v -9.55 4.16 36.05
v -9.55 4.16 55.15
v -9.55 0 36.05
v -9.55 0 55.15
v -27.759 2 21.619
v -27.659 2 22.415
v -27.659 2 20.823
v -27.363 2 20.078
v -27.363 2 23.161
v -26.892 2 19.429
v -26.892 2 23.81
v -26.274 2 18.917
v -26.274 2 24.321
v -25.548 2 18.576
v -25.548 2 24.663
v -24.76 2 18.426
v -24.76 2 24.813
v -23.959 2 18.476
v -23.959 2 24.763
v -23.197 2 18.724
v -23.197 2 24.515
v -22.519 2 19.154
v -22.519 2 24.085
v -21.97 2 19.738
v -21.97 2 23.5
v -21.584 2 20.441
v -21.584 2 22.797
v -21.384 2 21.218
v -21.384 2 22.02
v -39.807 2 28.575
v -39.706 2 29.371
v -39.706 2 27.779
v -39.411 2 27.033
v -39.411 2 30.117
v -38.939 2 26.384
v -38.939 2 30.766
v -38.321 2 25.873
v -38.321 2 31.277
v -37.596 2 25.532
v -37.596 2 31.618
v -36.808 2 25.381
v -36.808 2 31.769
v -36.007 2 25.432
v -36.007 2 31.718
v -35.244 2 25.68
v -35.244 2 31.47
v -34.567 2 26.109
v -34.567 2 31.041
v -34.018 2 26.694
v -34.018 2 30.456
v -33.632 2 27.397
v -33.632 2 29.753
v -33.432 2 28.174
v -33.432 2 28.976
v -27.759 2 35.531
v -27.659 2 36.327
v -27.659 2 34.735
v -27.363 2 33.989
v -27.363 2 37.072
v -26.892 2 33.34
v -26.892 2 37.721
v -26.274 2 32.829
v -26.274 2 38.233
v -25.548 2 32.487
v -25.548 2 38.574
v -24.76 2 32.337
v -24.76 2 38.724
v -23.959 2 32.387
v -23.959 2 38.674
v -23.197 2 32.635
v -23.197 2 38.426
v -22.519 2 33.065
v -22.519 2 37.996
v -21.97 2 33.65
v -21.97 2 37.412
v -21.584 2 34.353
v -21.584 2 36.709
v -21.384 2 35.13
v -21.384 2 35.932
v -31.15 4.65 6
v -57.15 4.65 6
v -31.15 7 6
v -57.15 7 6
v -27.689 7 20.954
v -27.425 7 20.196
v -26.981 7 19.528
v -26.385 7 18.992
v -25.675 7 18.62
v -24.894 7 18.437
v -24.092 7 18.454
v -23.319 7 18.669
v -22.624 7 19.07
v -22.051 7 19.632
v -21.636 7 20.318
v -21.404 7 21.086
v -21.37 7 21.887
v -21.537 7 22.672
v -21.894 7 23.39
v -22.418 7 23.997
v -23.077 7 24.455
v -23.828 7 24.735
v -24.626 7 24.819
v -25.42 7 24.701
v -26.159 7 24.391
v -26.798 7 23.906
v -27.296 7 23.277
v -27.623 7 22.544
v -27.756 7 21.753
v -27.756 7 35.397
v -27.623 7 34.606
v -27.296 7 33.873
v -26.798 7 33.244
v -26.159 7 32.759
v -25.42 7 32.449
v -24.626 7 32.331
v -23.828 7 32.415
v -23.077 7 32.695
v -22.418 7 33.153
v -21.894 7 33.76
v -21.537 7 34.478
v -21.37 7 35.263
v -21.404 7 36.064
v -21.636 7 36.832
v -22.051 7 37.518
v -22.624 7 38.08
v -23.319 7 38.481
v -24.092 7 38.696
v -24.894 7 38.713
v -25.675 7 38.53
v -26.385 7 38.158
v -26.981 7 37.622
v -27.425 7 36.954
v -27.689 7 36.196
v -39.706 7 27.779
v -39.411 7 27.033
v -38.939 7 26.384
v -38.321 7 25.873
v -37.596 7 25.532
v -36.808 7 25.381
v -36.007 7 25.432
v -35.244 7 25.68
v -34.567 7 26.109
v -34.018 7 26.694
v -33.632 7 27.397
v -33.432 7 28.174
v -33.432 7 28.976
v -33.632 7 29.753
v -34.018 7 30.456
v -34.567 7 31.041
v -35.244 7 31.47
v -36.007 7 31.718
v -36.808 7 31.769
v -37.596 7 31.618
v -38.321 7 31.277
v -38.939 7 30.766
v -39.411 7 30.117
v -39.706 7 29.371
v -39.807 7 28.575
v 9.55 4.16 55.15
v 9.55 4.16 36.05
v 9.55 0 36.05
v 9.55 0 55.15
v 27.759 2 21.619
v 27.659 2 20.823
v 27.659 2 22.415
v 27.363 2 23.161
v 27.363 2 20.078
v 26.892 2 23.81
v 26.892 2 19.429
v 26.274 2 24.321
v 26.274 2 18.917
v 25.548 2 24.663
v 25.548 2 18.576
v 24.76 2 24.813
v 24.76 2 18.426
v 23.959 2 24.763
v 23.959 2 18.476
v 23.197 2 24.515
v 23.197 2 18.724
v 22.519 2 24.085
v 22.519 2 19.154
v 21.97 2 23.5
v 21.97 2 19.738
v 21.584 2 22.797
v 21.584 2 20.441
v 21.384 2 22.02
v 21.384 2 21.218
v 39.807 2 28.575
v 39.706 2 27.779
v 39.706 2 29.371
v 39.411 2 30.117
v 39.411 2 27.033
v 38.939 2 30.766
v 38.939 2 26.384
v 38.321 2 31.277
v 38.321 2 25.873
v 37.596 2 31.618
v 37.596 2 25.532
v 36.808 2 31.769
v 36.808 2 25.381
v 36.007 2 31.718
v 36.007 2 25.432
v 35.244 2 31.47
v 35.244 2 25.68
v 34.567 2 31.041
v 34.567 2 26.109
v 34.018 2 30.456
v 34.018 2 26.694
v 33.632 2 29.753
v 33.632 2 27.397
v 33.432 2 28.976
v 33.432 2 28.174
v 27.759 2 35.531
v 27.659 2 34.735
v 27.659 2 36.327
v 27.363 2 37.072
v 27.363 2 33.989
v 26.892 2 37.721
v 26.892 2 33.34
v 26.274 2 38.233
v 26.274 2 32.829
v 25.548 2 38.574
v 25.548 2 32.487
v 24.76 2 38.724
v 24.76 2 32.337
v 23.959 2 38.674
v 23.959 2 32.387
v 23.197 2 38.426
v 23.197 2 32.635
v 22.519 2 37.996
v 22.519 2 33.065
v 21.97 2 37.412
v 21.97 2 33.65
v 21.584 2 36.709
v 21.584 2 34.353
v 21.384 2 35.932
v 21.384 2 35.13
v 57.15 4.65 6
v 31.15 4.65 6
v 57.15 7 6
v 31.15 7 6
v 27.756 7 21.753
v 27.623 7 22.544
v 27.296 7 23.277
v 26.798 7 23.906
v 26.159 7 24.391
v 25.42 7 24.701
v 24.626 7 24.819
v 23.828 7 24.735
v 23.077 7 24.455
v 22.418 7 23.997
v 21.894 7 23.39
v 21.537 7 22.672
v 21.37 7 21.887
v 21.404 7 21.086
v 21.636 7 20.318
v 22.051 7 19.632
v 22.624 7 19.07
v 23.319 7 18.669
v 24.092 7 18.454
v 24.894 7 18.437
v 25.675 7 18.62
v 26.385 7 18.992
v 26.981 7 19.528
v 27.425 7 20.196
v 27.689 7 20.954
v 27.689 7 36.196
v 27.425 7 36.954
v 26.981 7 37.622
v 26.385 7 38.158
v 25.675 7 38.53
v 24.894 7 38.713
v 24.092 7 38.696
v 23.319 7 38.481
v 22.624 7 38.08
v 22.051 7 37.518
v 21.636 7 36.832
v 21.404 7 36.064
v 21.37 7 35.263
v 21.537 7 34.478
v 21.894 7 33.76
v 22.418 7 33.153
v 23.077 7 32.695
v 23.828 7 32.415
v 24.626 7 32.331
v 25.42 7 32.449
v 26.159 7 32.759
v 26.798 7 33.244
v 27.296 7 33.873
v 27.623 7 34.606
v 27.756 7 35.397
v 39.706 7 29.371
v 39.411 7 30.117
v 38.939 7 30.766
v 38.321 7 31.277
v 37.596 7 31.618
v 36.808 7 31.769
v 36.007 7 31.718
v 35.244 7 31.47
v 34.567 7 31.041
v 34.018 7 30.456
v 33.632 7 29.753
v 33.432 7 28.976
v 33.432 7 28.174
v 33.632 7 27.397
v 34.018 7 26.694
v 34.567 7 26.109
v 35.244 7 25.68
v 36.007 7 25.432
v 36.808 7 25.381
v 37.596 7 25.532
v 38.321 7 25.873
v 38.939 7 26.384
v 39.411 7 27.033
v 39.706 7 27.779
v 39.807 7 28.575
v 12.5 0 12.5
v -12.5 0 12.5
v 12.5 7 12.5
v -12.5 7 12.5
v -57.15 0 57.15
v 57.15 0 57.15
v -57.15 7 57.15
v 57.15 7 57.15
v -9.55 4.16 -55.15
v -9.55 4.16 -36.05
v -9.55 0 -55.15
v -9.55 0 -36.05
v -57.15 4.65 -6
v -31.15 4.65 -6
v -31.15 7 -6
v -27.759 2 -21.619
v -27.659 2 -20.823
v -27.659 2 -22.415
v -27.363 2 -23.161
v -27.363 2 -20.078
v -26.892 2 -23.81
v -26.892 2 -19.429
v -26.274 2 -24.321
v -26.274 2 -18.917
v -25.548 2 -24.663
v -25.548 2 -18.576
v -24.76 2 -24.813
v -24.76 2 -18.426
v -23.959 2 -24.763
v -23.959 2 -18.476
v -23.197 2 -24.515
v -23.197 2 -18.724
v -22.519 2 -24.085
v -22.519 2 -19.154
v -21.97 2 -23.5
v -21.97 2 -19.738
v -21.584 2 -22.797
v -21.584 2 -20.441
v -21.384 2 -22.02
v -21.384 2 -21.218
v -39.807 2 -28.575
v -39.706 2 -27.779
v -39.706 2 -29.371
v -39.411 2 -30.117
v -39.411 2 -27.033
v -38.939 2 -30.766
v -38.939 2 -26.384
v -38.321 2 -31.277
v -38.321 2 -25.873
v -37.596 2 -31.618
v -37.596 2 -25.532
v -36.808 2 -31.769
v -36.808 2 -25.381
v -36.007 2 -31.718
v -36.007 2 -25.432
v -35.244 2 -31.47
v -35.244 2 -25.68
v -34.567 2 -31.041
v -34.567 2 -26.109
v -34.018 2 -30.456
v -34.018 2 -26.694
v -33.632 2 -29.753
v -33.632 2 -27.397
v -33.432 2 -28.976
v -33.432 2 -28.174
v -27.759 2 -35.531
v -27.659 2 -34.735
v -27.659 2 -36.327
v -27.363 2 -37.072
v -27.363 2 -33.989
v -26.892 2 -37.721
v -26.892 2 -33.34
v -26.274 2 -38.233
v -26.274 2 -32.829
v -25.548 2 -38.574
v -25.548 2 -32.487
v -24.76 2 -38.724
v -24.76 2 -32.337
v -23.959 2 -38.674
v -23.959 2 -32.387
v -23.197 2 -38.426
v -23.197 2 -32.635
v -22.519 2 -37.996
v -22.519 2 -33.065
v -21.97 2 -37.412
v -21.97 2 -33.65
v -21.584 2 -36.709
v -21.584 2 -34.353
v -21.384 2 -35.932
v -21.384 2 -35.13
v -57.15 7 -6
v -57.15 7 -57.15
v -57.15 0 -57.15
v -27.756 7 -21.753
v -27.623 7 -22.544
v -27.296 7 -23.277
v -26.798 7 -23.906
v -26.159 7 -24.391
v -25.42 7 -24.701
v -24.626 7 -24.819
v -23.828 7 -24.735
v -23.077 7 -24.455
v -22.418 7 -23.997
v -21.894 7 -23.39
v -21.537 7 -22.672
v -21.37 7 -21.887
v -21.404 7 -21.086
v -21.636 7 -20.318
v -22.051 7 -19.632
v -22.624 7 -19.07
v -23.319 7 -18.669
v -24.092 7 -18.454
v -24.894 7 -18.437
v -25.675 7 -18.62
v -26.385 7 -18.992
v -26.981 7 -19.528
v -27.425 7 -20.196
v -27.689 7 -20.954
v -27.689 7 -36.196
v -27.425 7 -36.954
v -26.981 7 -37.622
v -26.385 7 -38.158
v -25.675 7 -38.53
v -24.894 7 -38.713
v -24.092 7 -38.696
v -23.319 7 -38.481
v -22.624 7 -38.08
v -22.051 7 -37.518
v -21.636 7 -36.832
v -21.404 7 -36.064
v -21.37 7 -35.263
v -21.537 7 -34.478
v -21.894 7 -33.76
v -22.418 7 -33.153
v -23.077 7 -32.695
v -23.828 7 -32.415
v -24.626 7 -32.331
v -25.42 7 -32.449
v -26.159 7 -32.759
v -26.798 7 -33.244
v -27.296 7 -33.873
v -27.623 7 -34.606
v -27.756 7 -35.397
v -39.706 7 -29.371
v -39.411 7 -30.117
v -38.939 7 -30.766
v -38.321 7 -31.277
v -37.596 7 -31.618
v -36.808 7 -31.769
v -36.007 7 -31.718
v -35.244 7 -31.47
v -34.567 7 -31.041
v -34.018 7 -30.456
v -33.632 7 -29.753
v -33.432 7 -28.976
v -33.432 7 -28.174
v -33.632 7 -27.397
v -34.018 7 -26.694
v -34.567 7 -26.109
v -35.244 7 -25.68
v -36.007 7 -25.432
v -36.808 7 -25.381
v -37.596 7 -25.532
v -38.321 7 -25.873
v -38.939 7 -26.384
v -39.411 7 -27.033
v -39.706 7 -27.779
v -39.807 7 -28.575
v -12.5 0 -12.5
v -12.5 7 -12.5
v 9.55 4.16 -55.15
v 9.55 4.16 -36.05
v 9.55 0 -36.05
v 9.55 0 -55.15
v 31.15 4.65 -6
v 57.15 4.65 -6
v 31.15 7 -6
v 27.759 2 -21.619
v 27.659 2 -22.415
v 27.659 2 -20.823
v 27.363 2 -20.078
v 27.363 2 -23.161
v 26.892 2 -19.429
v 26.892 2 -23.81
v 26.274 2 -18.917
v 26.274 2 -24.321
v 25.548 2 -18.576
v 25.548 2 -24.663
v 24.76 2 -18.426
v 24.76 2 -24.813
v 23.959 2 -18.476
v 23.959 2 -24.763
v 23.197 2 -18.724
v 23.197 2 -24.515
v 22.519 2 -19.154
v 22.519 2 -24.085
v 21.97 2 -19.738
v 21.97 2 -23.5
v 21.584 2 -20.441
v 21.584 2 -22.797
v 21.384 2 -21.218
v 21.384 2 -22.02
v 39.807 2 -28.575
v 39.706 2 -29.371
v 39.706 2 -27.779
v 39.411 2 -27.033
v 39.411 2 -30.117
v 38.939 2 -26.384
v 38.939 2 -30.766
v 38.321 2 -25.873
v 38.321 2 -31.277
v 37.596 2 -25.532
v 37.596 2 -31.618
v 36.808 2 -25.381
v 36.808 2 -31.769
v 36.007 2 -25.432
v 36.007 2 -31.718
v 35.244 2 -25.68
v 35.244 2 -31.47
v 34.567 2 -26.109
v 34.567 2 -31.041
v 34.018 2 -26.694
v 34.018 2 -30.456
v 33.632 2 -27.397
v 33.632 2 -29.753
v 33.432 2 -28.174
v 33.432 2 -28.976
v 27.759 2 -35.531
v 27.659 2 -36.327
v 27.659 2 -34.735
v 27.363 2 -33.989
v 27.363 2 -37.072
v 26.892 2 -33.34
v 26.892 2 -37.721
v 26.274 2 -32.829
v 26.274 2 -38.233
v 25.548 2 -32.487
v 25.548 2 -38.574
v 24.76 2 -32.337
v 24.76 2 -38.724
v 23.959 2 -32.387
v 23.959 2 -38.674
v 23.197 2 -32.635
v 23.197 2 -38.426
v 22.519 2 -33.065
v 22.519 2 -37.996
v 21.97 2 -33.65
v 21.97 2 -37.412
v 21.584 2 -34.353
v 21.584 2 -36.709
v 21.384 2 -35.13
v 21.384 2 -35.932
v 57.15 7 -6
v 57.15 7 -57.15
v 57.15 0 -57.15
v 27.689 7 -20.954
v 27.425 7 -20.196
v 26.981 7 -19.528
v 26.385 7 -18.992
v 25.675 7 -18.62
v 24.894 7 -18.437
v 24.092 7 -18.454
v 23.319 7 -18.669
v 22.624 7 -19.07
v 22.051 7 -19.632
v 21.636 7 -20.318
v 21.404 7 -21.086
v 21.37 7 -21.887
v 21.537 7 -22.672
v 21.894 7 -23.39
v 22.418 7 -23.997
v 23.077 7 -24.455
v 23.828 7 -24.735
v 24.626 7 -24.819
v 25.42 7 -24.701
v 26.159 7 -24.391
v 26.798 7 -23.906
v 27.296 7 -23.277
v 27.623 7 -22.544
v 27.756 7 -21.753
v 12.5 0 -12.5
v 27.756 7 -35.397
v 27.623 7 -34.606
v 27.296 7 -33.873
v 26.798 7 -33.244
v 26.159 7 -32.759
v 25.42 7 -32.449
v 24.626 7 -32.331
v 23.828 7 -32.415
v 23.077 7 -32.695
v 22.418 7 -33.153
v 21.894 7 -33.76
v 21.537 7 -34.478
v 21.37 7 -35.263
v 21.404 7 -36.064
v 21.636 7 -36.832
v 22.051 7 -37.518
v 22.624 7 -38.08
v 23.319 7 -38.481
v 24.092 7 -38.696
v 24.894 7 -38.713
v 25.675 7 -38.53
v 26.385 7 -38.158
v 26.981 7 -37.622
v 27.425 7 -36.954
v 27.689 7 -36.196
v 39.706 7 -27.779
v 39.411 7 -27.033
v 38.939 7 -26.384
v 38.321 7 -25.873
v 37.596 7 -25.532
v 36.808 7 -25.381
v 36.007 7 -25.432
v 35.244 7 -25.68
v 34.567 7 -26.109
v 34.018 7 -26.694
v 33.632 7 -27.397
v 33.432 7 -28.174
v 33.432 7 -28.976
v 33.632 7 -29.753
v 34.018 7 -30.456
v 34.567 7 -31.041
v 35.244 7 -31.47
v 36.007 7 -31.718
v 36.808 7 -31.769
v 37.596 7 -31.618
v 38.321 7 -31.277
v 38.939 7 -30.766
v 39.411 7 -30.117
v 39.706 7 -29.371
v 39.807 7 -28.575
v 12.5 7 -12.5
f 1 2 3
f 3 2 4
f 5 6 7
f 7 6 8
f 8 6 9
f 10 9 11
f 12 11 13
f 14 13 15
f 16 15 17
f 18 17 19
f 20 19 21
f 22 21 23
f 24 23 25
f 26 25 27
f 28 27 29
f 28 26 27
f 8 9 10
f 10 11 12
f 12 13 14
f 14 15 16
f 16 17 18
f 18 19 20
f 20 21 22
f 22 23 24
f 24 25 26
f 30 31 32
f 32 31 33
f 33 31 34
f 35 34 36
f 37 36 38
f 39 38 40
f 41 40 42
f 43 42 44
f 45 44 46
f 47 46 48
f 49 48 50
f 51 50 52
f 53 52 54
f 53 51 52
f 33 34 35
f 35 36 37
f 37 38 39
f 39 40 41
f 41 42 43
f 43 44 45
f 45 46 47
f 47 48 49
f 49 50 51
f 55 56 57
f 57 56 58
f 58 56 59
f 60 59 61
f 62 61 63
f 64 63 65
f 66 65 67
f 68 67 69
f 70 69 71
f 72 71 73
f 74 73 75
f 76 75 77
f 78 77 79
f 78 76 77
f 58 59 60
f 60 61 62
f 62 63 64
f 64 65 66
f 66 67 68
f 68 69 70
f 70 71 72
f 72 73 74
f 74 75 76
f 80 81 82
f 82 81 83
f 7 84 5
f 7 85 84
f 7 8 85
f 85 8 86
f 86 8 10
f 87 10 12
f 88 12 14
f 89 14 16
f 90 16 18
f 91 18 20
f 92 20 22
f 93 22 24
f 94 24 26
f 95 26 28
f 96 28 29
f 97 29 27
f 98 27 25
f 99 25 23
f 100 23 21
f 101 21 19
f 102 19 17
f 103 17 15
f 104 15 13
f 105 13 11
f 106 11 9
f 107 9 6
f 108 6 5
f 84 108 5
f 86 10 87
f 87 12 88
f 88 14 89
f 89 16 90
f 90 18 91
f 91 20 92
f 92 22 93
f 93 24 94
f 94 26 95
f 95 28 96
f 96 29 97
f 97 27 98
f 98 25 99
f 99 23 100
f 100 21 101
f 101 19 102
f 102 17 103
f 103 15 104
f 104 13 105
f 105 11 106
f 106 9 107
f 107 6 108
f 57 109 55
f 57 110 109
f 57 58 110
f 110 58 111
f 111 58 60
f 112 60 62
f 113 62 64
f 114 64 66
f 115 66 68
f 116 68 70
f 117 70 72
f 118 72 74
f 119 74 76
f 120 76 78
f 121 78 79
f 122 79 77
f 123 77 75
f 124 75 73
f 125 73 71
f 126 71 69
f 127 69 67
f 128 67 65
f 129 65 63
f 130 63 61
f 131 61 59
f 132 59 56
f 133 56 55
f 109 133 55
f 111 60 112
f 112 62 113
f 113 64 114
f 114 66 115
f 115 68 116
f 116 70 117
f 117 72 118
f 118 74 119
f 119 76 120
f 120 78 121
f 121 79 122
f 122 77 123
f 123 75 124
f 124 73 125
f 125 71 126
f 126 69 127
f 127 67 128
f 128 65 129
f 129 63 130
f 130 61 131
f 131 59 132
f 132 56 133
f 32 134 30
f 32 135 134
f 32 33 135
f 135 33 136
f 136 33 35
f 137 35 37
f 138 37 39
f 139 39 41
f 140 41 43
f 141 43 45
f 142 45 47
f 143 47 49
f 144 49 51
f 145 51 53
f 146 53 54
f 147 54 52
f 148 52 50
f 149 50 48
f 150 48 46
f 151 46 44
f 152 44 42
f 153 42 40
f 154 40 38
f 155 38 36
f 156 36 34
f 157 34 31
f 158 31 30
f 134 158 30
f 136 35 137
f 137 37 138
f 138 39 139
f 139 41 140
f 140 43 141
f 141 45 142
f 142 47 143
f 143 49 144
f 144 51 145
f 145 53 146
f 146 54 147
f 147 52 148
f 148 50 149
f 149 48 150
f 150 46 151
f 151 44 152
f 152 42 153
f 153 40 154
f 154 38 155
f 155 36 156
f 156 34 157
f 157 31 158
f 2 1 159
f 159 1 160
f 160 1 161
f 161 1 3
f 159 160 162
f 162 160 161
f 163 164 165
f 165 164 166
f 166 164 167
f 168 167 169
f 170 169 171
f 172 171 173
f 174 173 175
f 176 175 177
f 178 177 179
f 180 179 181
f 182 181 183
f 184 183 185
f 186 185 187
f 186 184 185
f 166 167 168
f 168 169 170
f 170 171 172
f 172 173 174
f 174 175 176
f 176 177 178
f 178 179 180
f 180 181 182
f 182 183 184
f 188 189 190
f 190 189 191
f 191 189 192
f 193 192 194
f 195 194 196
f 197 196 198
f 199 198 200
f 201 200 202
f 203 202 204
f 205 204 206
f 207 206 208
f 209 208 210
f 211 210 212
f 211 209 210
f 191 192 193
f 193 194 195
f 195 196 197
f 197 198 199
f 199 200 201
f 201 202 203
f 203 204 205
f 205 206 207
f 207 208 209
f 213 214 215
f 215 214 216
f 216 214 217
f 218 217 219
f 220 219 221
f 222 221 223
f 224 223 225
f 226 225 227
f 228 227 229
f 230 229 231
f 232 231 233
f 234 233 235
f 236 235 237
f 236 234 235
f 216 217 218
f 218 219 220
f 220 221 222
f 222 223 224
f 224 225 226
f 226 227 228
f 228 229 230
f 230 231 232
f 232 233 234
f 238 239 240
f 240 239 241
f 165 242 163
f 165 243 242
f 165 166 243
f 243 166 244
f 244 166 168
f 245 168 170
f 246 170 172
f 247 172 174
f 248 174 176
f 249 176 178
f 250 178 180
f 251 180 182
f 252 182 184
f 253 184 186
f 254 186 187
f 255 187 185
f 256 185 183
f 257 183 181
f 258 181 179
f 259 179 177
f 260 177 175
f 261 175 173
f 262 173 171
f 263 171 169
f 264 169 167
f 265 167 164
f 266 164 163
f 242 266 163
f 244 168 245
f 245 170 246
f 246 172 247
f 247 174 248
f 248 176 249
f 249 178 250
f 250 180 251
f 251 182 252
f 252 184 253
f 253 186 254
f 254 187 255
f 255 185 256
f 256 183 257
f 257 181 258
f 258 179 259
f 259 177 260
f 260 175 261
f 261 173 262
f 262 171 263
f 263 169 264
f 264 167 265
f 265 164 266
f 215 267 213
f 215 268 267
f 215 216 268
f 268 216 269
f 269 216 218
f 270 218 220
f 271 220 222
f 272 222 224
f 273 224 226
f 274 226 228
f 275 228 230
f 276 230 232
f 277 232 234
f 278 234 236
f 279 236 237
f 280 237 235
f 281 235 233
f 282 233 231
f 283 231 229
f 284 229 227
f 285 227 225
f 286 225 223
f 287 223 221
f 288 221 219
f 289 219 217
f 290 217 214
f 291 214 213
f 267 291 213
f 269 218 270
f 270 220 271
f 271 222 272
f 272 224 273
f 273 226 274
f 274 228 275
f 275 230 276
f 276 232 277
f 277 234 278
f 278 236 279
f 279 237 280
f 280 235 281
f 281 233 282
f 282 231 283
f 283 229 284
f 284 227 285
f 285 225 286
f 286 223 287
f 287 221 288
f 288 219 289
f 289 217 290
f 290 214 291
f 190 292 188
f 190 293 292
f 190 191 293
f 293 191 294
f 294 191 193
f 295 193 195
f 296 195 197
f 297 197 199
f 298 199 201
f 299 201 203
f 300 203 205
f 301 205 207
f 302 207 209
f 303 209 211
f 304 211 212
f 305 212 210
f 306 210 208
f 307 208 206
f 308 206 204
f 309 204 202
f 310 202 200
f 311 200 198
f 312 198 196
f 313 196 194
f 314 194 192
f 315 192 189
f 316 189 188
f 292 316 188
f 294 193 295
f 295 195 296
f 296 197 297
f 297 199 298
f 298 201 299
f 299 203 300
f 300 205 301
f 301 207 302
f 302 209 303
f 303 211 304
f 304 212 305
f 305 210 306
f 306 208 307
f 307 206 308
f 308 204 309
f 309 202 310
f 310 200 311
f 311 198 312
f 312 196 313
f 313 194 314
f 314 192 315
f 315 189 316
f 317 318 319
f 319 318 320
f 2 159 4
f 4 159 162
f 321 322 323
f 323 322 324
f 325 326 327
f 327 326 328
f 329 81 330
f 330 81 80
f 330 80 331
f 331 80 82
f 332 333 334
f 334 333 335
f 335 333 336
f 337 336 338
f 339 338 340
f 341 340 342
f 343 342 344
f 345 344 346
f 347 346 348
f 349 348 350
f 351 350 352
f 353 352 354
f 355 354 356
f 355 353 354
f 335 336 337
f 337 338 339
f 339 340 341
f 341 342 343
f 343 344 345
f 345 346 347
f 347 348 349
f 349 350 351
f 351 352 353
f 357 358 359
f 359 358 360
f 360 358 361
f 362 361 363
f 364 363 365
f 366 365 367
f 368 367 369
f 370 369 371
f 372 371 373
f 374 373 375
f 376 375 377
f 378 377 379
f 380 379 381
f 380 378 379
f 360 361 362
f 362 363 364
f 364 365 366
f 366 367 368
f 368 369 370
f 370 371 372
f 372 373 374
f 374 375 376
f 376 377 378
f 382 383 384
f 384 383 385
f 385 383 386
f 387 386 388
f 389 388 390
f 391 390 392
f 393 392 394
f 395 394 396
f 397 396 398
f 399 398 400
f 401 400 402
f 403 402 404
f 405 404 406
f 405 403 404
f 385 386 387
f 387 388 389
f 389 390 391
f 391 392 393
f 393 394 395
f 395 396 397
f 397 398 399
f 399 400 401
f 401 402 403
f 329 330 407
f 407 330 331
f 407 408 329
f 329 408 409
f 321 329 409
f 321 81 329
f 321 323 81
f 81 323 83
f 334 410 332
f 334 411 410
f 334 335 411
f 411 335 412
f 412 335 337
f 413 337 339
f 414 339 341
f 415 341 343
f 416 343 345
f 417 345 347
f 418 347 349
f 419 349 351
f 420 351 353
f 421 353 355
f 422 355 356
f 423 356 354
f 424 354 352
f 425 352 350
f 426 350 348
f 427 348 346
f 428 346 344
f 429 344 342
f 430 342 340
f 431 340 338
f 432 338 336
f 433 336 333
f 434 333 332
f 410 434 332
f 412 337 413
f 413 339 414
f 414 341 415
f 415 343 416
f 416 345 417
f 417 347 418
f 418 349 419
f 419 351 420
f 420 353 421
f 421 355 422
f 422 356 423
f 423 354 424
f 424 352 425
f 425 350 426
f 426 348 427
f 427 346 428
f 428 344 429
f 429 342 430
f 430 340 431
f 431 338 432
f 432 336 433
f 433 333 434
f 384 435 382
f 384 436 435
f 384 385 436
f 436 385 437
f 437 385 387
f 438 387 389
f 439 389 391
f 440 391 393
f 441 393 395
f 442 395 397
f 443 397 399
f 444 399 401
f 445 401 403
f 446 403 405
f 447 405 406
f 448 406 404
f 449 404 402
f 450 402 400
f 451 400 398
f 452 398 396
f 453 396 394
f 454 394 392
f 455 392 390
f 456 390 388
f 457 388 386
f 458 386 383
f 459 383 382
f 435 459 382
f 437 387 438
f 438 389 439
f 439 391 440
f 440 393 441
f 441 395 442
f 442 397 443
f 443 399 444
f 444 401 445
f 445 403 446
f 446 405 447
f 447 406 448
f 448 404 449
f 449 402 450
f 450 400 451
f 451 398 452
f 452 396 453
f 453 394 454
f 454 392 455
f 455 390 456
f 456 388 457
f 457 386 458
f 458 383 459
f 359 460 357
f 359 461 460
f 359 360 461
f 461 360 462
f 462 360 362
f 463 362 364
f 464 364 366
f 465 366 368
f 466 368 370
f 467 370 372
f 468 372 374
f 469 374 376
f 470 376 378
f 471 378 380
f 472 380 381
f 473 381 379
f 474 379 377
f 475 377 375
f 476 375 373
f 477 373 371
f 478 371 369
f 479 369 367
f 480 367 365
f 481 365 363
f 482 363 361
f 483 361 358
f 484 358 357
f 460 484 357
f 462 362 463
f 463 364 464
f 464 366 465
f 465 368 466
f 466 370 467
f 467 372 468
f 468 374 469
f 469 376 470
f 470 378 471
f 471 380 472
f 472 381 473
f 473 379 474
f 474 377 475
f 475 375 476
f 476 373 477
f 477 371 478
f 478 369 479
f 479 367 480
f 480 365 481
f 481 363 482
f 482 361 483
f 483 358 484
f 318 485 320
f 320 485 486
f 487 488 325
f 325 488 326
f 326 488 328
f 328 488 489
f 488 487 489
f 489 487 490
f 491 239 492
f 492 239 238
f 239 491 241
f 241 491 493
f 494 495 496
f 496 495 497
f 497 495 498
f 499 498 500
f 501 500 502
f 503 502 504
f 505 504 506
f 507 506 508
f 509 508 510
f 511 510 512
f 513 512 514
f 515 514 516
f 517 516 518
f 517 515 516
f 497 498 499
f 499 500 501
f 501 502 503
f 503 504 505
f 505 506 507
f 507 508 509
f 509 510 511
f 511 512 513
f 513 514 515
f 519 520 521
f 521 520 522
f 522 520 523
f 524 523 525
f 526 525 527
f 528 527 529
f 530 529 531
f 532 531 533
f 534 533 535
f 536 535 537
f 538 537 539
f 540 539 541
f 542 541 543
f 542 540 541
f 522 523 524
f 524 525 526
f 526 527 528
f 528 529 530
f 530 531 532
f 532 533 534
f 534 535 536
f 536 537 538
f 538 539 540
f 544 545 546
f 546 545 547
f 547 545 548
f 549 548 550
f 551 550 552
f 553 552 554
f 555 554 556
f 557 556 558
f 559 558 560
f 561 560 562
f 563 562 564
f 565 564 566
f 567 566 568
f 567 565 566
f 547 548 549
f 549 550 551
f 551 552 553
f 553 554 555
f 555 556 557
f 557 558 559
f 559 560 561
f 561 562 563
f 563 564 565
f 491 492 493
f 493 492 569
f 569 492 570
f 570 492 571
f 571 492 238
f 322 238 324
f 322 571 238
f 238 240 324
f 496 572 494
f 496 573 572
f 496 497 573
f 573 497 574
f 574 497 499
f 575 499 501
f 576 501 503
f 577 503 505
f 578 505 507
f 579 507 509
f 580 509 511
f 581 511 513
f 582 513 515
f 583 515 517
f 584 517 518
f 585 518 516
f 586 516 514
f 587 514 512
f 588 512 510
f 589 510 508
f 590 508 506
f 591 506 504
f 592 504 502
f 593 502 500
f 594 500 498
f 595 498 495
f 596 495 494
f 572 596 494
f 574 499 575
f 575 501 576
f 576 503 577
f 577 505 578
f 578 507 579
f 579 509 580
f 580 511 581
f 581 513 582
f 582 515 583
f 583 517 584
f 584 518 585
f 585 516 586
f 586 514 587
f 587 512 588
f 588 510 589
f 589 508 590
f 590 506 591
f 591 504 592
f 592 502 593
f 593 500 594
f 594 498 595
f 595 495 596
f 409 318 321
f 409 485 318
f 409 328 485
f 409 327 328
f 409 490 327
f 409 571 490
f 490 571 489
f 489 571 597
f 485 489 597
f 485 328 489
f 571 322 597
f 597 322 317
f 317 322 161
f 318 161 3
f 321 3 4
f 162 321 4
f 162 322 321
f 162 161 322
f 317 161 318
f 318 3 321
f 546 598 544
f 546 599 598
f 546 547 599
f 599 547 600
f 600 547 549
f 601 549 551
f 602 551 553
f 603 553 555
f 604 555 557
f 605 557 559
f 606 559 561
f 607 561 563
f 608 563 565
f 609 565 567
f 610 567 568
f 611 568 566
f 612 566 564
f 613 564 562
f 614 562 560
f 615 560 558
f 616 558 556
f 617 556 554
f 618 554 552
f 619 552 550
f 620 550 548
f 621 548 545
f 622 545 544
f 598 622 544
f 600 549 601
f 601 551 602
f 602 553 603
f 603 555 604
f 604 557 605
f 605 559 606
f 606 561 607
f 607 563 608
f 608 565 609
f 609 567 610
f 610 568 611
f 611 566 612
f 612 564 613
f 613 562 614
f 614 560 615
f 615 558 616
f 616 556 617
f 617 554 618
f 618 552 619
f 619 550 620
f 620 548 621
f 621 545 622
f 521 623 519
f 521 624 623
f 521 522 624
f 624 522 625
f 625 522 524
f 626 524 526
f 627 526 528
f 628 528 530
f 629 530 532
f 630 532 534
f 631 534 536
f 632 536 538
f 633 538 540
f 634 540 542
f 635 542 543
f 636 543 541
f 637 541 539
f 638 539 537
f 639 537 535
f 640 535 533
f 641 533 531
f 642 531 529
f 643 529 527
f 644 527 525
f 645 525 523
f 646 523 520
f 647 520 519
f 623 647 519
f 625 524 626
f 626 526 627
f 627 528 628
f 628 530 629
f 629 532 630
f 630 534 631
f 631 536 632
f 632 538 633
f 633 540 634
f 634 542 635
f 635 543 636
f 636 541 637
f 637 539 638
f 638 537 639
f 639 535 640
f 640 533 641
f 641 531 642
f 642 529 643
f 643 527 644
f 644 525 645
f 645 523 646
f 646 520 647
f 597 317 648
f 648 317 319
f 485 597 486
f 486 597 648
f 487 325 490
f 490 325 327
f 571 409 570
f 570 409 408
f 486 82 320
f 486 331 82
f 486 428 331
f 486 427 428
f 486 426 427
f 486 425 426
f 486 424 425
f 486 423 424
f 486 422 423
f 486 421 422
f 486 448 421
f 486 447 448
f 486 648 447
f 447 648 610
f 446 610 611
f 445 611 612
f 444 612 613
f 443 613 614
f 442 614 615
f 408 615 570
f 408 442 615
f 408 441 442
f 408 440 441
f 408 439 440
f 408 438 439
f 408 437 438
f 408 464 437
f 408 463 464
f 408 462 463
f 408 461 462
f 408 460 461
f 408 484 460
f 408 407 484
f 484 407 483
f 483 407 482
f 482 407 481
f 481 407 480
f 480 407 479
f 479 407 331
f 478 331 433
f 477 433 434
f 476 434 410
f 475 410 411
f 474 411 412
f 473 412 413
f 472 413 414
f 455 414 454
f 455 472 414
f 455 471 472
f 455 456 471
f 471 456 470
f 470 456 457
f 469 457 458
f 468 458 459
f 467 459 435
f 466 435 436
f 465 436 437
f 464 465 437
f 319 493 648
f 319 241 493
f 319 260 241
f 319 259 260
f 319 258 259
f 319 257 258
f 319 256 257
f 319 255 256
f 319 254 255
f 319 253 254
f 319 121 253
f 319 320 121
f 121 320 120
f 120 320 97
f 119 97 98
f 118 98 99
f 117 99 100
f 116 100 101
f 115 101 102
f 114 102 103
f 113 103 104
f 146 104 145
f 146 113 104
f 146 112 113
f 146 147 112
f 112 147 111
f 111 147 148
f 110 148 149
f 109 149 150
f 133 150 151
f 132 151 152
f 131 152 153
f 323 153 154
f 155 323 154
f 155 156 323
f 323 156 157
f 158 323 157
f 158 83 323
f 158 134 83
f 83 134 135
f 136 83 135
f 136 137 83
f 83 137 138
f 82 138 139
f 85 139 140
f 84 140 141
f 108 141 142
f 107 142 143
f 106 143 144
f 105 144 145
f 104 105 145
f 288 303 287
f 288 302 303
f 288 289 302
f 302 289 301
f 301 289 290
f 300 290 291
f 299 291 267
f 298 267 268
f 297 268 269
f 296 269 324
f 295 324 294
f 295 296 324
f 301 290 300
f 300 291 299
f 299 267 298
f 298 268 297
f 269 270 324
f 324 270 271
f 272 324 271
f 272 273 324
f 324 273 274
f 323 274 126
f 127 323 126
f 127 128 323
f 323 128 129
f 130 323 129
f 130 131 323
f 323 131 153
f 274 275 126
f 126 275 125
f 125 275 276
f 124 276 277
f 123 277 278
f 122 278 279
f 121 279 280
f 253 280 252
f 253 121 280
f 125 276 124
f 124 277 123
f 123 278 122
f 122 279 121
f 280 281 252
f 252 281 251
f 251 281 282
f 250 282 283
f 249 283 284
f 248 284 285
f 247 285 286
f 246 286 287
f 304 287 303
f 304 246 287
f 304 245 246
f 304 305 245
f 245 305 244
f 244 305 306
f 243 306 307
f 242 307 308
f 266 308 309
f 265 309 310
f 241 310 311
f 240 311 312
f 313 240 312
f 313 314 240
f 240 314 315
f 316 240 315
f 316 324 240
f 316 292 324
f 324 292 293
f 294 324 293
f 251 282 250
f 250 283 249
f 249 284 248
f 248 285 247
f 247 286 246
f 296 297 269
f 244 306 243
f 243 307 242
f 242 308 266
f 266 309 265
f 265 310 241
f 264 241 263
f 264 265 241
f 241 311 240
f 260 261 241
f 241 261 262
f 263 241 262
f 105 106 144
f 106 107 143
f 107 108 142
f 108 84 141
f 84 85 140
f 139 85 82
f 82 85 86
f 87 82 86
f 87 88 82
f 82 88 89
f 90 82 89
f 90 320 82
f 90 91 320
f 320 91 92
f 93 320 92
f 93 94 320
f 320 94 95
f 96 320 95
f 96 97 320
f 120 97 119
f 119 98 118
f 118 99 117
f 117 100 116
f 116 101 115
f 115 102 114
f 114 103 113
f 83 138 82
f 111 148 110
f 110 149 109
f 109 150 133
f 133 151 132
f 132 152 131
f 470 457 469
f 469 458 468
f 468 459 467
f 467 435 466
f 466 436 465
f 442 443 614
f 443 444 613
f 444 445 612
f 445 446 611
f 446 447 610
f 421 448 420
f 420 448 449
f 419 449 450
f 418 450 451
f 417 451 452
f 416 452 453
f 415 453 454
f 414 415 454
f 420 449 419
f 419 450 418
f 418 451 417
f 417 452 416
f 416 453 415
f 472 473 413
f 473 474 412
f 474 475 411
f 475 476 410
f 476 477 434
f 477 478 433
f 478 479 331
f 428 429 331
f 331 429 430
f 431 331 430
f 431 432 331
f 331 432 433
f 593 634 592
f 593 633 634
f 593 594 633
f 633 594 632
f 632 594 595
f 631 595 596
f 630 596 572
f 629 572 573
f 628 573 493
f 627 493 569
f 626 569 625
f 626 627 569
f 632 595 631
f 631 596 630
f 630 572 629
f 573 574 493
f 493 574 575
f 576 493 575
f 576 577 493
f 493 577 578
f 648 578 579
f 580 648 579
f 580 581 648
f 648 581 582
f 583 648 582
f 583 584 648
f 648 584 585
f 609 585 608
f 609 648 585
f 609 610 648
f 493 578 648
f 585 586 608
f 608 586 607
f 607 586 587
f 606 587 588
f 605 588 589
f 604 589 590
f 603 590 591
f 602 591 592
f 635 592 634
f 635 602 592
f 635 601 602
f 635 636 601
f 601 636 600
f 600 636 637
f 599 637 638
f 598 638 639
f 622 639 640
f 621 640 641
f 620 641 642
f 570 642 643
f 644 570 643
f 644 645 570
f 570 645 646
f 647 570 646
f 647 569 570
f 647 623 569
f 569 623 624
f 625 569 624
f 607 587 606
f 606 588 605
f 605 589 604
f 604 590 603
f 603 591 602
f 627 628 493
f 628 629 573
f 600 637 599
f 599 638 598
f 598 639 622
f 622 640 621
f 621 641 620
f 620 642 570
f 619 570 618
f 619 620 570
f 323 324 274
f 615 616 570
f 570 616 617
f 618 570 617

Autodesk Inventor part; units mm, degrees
ref_plane "YZ Plane" through (0, 0, 0) normal (1, 0, 0) x (0, 1, 0)
ref_plane "XZ Plane" through (0, 0, 0) normal (0, 1, 0) x (-1, 0, 0)
ref_plane "XY Plane" through (0, 0, 0) normal (0, 0, 1) x (1, 0, 0)
sketch "Sketch1" plane through (0, 0, 0) normal (0, 1, 0) x (-1, 0, 0)
  line L0 (12.5, 12.5) -> (-12.5, 12.5)
  line L1 (-12.5, 12.5) -> (-12.5, -12.5)
  line L2 (-12.5, -12.5) -> (12.5, -12.5)
  line L3 (12.5, -12.5) -> (12.5, 12.5)
  line L4 (57.15, 6) -> (31.15, 6)
  line L5 (31.15, 6) -> (31.15, -6)
  line L6 (31.15, -6) -> (57.15, -6)
  line L7 (57.15, -6) -> (57.15, 6)
  line L8 (-31.15, 6) -> (-57.15, 6)
  line L9 (-57.15, 6) -> (-57.15, -6)
  line L10 (-57.15, -6) -> (-31.15, -6)
  line L11 (-31.15, -6) -> (-31.15, 6)
  line L12 (9.55, 55.15) -> (-9.55, 55.15)
  line L13 (-9.55, 55.15) -> (-9.55, 36.05)
  line L14 (-9.55, 36.05) -> (9.55, 36.05)
  line L15 (9.55, 36.05) -> (9.55, 55.15)
  line L16 (9.55, -36.05) -> (-9.55, -36.05)
  line L17 (-9.55, -36.05) -> (-9.55, -55.15)
  line L18 (-9.55, -55.15) -> (9.55, -55.15)
  line L19 (9.55, -55.15) -> (9.55, -36.05)
  line L20 (57.15, 57.15) -> (-57.15, 57.15)
  line L21 (-57.15, 57.15) -> (-57.15, -57.15)
  line L22 (-57.15, -57.15) -> (57.15, -57.15)
  line L23 (57.15, -57.15) -> (57.15, 57.15)
  circle A0 centre (-28.575, -28.575) radius 16.0636
  line L24 (-28.575, -28.575) -> (-44.6386, -28.575)
  line L25 (-28.575, -28.575) -> (-20.5432, -42.4865)
  line L26 (-28.575, -28.575) -> (-12.5114, -28.575) construction
  line L27 (-28.575, -28.575) -> (-20.5432, -14.6635)
  circle A1 centre (-24.5591, -21.6193) radius 3.2
  circle A2 centre (-24.5591, -35.5307) radius 3.2
  circle A3 centre (-36.6068, -28.575) radius 3.2
  line L28 (0, 0) -> (-12.5, -12.5)
  circle A4 centre (-28.575, 28.575) radius 16.0636
  line L29 (-28.575, 28.575) -> (-44.6386, 28.575)
  line L30 (-28.575, 28.575) -> (-20.5432, 14.6635)
  line L31 (-28.575, 28.575) -> (-20.5432, 42.4865)
  circle A5 centre (-24.5591, 35.5307) radius 3.2
  circle A6 centre (-24.5591, 21.6193) radius 3.2
  circle A7 centre (-36.6068, 28.575) radius 3.2
  circle A8 centre (28.575, 28.575) radius 16.0636
  line L32 (28.575, 28.575) -> (12.5114, 28.575)
  line L33 (28.575, 28.575) -> (36.6068, 14.6635)
  line L34 (28.575, 28.575) -> (36.6068, 42.4865)
  circle A9 centre (32.5909, 35.5307) radius 3.2
  circle A10 centre (32.5909, 21.6193) radius 3.2
  circle A11 centre (20.5432, 28.575) radius 3.2
  circle A12 centre (28.575, -28.575) radius 16.0636
  line L35 (28.575, -28.575) -> (12.5114, -28.575)
  line L36 (28.575, -28.575) -> (36.6068, -42.4865)
  line L37 (28.575, -28.575) -> (36.6068, -14.6635)
  circle A13 centre (32.5909, -21.6193) radius 3.2
  circle A14 centre (32.5909, -35.5307) radius 3.2
  circle A15 centre (20.5432, -28.575) radius 3.2
  line L38 (34.1909, 38.302) -> (36.6068, 42.4865)
  line L39 (30.9909, 32.7595) -> (28.575, 28.575)
  line L40 (30.9909, 24.3905) -> (28.575, 28.575)
  line L41 (34.1909, 18.848) -> (36.6068, 14.6635)
  line L42 (23.7432, 28.575) -> (28.575, 28.575)
  line L43 (17.3432, 28.575) -> (12.5114, 28.575)
  line L44 (28.575, 28.575) -> (23.7432, 28.575)
  line L45 (-28.575, 28.575) -> (-26.1591, 24.3905)
  line L46 (-22.9591, 18.848) -> (-20.5432, 14.6635)
  line L47 (-26.1591, 32.7595) -> (-28.575, 28.575)
  line L48 (-22.9591, 38.302) -> (-20.5432, 42.4865)
  line L49 (-39.8068, 28.575) -> (-44.6386, 28.575)
  line L50 (-33.4068, 28.575) -> (-28.575, 28.575)
  line L51 (-22.9591, 18.848) -> (-20.5432, 14.6635)
  line L52 (-44.6386, -28.575) -> (-39.8068, -28.575)
  line L53 (-33.4068, -28.575) -> (-28.575, -28.575)
  line L54 (-28.575, -28.575) -> (-26.1591, -32.7595)
  line L55 (-22.9591, -38.302) -> (-20.5432, -42.4865)
  line L56 (-28.575, -28.575) -> (-26.1591, -24.3905)
  line L57 (-22.9591, -18.848) -> (-20.5432, -14.6635)
  line L58 (0, 0) -> (0, -57.15)
  line L59 (0, 0) -> (-57.15, 0)
  line L60 (0, 0) -> (-31.15, 0)
  line L61 (0, 0) -> (0, -36.05)
  line L62 (0, 0) -> (0, -12.5)
  line L63 (0, 0) -> (-12.5, 0)
  line L64 (-57.15, 0) -> (-57.15, -6)
  line L65 (-57.15, 0) -> (-57.15, -57.15)
  line L66 (-57.15, -57.15) -> (0, -57.15)
  line L67 (0, -55.15) -> (0, -57.15)
  line L68 (0, -36.05) -> (0, -55.15)
  line L69 (0, -36.05) -> (0, -12.5)
  point P0 (-28.575, 28.575)
  point P1 (28.575, 28.575)
  point P2 (28.575, -28.575)
  dimension "d2" = 25
  dimension "d3" = 25
  dimension "d4" = 12.5
  dimension "d5" = 12.5
  dimension "d6" = 6
  dimension "d7" = 12
  dimension "d8" = 26
  dimension "d9" = 26
  dimension "d10" = 6
  dimension "d11" = 12
  dimension "d12" = 19.1
  dimension "d13" = 19.1
  dimension "d14" = 9.55
  dimension "d15" = 19.1
  dimension "d16" = 19.1
  dimension "d17" = 9.55
  dimension "d22" = 0
  dimension "d23" = 0
  dimension "d24" = 2
  dimension "d25" = 2
  dimension "d26" = 114.3
  dimension "d28" = 57.15
  dimension "d29" = 57.15
  dimension "d30" = 114.3
  dimension "d37" = 28.575
  dimension "d38" = 28.575
  dimension "d39" = 6.4
  dimension "d40" = 6.4
  dimension "d41" = 6.4
  dimension "d43" = 120
  dimension "d44" = 120
  dimension "d45" = 32.1272
  dimension "d46" = 28.575
  dimension "d47" = 28.575
  dimension "d48" = 28.575
  dimension "d49" = 28.575
  dimension "d50" = 28.575
  dimension "d51" = 28.575
  dimension "d52" = 6.4
  dimension "d53" = 6.4
  dimension "d54" = 6.4
  dimension "d55" = 120
  dimension "d56" = 120
  dimension "d57" = 32.1272
  dimension "d58" = 6.4
  dimension "d59" = 6.4
  dimension "d60" = 6.4
  dimension "d61" = 120
  dimension "d62" = 120
  dimension "d63" = 32.1272
  dimension "d64" = 6.4
  dimension "d65" = 6.4
  dimension "d66" = 6.4
  dimension "d67" = 120
  dimension "d68" = 120
  dimension "d69" = 32.1272
extrude "Extrusion1" add sketch "Sketch1" along normal blind 7 contours L1 L2 L58 L16 L17 L18 L22 L21 L10 L11 L59 | A0 L25 A2 L27 A1 | L27 A1 L24 A3 A0 | A0 L24 A3 L25 A2
sketch "Sketch2" plane through (0, 0, 0) normal (0, -1, 0) x (1, 0, 0)
  circle A0 centre (36.6068, -28.575) radius 3.2 projected
  circle A1 centre (36.6068, -28.575) radius 3.2
  circle A2 centre (24.5591, -21.6193) radius 3.2 projected
  circle A3 centre (24.5591, -21.6193) radius 3.2
  circle A4 centre (24.5591, -35.5307) radius 3.2 projected
  circle A5 centre (24.5591, -35.5307) radius 3.2
  point P0 (0, 0)
extrude "Extrusion2" add sketch "Sketch2" against normal blind 2
sketch "Sketch3" plane through (0, 0, 0) normal (0, -1, 0) x (1, 0, 0)
  line L0 (31.15, -6) -> (57.15, -6)
  line L1 (57.15, -6) -> (57.15, 0)
  line L2 (57.15, 0) -> (31.15, 0)
  line L3 (31.15, 0) -> (31.15, -6)
  point P0 (0, 0)
extrude "Extrusion3" add sketch "Sketch3" against normal blind 4.65
sketch "Sketch4" plane through (0, 7, 0) normal (0, 1, 0) x (1, 0, 0)
  line L0 (9.55, 55.15) -> (0, 55.15)
  line L1 (0, 55.15) -> (0, 36.05)
  line L2 (0, 36.05) -> (9.55, 36.05)
  line L3 (9.55, 36.05) -> (9.55, 55.15)
  point P0 (0, 0)
extrude "Extrusion4" add sketch "Sketch4" against normal blind 2.84
mirror "Mirror1" about plane through (0, 0, -36.05) normal (-1, 0, 0)
mirror "Mirror2" about plane through (-12.5, 0, 0) normal (0, 0, 1)
properties part number "Prototype1"
